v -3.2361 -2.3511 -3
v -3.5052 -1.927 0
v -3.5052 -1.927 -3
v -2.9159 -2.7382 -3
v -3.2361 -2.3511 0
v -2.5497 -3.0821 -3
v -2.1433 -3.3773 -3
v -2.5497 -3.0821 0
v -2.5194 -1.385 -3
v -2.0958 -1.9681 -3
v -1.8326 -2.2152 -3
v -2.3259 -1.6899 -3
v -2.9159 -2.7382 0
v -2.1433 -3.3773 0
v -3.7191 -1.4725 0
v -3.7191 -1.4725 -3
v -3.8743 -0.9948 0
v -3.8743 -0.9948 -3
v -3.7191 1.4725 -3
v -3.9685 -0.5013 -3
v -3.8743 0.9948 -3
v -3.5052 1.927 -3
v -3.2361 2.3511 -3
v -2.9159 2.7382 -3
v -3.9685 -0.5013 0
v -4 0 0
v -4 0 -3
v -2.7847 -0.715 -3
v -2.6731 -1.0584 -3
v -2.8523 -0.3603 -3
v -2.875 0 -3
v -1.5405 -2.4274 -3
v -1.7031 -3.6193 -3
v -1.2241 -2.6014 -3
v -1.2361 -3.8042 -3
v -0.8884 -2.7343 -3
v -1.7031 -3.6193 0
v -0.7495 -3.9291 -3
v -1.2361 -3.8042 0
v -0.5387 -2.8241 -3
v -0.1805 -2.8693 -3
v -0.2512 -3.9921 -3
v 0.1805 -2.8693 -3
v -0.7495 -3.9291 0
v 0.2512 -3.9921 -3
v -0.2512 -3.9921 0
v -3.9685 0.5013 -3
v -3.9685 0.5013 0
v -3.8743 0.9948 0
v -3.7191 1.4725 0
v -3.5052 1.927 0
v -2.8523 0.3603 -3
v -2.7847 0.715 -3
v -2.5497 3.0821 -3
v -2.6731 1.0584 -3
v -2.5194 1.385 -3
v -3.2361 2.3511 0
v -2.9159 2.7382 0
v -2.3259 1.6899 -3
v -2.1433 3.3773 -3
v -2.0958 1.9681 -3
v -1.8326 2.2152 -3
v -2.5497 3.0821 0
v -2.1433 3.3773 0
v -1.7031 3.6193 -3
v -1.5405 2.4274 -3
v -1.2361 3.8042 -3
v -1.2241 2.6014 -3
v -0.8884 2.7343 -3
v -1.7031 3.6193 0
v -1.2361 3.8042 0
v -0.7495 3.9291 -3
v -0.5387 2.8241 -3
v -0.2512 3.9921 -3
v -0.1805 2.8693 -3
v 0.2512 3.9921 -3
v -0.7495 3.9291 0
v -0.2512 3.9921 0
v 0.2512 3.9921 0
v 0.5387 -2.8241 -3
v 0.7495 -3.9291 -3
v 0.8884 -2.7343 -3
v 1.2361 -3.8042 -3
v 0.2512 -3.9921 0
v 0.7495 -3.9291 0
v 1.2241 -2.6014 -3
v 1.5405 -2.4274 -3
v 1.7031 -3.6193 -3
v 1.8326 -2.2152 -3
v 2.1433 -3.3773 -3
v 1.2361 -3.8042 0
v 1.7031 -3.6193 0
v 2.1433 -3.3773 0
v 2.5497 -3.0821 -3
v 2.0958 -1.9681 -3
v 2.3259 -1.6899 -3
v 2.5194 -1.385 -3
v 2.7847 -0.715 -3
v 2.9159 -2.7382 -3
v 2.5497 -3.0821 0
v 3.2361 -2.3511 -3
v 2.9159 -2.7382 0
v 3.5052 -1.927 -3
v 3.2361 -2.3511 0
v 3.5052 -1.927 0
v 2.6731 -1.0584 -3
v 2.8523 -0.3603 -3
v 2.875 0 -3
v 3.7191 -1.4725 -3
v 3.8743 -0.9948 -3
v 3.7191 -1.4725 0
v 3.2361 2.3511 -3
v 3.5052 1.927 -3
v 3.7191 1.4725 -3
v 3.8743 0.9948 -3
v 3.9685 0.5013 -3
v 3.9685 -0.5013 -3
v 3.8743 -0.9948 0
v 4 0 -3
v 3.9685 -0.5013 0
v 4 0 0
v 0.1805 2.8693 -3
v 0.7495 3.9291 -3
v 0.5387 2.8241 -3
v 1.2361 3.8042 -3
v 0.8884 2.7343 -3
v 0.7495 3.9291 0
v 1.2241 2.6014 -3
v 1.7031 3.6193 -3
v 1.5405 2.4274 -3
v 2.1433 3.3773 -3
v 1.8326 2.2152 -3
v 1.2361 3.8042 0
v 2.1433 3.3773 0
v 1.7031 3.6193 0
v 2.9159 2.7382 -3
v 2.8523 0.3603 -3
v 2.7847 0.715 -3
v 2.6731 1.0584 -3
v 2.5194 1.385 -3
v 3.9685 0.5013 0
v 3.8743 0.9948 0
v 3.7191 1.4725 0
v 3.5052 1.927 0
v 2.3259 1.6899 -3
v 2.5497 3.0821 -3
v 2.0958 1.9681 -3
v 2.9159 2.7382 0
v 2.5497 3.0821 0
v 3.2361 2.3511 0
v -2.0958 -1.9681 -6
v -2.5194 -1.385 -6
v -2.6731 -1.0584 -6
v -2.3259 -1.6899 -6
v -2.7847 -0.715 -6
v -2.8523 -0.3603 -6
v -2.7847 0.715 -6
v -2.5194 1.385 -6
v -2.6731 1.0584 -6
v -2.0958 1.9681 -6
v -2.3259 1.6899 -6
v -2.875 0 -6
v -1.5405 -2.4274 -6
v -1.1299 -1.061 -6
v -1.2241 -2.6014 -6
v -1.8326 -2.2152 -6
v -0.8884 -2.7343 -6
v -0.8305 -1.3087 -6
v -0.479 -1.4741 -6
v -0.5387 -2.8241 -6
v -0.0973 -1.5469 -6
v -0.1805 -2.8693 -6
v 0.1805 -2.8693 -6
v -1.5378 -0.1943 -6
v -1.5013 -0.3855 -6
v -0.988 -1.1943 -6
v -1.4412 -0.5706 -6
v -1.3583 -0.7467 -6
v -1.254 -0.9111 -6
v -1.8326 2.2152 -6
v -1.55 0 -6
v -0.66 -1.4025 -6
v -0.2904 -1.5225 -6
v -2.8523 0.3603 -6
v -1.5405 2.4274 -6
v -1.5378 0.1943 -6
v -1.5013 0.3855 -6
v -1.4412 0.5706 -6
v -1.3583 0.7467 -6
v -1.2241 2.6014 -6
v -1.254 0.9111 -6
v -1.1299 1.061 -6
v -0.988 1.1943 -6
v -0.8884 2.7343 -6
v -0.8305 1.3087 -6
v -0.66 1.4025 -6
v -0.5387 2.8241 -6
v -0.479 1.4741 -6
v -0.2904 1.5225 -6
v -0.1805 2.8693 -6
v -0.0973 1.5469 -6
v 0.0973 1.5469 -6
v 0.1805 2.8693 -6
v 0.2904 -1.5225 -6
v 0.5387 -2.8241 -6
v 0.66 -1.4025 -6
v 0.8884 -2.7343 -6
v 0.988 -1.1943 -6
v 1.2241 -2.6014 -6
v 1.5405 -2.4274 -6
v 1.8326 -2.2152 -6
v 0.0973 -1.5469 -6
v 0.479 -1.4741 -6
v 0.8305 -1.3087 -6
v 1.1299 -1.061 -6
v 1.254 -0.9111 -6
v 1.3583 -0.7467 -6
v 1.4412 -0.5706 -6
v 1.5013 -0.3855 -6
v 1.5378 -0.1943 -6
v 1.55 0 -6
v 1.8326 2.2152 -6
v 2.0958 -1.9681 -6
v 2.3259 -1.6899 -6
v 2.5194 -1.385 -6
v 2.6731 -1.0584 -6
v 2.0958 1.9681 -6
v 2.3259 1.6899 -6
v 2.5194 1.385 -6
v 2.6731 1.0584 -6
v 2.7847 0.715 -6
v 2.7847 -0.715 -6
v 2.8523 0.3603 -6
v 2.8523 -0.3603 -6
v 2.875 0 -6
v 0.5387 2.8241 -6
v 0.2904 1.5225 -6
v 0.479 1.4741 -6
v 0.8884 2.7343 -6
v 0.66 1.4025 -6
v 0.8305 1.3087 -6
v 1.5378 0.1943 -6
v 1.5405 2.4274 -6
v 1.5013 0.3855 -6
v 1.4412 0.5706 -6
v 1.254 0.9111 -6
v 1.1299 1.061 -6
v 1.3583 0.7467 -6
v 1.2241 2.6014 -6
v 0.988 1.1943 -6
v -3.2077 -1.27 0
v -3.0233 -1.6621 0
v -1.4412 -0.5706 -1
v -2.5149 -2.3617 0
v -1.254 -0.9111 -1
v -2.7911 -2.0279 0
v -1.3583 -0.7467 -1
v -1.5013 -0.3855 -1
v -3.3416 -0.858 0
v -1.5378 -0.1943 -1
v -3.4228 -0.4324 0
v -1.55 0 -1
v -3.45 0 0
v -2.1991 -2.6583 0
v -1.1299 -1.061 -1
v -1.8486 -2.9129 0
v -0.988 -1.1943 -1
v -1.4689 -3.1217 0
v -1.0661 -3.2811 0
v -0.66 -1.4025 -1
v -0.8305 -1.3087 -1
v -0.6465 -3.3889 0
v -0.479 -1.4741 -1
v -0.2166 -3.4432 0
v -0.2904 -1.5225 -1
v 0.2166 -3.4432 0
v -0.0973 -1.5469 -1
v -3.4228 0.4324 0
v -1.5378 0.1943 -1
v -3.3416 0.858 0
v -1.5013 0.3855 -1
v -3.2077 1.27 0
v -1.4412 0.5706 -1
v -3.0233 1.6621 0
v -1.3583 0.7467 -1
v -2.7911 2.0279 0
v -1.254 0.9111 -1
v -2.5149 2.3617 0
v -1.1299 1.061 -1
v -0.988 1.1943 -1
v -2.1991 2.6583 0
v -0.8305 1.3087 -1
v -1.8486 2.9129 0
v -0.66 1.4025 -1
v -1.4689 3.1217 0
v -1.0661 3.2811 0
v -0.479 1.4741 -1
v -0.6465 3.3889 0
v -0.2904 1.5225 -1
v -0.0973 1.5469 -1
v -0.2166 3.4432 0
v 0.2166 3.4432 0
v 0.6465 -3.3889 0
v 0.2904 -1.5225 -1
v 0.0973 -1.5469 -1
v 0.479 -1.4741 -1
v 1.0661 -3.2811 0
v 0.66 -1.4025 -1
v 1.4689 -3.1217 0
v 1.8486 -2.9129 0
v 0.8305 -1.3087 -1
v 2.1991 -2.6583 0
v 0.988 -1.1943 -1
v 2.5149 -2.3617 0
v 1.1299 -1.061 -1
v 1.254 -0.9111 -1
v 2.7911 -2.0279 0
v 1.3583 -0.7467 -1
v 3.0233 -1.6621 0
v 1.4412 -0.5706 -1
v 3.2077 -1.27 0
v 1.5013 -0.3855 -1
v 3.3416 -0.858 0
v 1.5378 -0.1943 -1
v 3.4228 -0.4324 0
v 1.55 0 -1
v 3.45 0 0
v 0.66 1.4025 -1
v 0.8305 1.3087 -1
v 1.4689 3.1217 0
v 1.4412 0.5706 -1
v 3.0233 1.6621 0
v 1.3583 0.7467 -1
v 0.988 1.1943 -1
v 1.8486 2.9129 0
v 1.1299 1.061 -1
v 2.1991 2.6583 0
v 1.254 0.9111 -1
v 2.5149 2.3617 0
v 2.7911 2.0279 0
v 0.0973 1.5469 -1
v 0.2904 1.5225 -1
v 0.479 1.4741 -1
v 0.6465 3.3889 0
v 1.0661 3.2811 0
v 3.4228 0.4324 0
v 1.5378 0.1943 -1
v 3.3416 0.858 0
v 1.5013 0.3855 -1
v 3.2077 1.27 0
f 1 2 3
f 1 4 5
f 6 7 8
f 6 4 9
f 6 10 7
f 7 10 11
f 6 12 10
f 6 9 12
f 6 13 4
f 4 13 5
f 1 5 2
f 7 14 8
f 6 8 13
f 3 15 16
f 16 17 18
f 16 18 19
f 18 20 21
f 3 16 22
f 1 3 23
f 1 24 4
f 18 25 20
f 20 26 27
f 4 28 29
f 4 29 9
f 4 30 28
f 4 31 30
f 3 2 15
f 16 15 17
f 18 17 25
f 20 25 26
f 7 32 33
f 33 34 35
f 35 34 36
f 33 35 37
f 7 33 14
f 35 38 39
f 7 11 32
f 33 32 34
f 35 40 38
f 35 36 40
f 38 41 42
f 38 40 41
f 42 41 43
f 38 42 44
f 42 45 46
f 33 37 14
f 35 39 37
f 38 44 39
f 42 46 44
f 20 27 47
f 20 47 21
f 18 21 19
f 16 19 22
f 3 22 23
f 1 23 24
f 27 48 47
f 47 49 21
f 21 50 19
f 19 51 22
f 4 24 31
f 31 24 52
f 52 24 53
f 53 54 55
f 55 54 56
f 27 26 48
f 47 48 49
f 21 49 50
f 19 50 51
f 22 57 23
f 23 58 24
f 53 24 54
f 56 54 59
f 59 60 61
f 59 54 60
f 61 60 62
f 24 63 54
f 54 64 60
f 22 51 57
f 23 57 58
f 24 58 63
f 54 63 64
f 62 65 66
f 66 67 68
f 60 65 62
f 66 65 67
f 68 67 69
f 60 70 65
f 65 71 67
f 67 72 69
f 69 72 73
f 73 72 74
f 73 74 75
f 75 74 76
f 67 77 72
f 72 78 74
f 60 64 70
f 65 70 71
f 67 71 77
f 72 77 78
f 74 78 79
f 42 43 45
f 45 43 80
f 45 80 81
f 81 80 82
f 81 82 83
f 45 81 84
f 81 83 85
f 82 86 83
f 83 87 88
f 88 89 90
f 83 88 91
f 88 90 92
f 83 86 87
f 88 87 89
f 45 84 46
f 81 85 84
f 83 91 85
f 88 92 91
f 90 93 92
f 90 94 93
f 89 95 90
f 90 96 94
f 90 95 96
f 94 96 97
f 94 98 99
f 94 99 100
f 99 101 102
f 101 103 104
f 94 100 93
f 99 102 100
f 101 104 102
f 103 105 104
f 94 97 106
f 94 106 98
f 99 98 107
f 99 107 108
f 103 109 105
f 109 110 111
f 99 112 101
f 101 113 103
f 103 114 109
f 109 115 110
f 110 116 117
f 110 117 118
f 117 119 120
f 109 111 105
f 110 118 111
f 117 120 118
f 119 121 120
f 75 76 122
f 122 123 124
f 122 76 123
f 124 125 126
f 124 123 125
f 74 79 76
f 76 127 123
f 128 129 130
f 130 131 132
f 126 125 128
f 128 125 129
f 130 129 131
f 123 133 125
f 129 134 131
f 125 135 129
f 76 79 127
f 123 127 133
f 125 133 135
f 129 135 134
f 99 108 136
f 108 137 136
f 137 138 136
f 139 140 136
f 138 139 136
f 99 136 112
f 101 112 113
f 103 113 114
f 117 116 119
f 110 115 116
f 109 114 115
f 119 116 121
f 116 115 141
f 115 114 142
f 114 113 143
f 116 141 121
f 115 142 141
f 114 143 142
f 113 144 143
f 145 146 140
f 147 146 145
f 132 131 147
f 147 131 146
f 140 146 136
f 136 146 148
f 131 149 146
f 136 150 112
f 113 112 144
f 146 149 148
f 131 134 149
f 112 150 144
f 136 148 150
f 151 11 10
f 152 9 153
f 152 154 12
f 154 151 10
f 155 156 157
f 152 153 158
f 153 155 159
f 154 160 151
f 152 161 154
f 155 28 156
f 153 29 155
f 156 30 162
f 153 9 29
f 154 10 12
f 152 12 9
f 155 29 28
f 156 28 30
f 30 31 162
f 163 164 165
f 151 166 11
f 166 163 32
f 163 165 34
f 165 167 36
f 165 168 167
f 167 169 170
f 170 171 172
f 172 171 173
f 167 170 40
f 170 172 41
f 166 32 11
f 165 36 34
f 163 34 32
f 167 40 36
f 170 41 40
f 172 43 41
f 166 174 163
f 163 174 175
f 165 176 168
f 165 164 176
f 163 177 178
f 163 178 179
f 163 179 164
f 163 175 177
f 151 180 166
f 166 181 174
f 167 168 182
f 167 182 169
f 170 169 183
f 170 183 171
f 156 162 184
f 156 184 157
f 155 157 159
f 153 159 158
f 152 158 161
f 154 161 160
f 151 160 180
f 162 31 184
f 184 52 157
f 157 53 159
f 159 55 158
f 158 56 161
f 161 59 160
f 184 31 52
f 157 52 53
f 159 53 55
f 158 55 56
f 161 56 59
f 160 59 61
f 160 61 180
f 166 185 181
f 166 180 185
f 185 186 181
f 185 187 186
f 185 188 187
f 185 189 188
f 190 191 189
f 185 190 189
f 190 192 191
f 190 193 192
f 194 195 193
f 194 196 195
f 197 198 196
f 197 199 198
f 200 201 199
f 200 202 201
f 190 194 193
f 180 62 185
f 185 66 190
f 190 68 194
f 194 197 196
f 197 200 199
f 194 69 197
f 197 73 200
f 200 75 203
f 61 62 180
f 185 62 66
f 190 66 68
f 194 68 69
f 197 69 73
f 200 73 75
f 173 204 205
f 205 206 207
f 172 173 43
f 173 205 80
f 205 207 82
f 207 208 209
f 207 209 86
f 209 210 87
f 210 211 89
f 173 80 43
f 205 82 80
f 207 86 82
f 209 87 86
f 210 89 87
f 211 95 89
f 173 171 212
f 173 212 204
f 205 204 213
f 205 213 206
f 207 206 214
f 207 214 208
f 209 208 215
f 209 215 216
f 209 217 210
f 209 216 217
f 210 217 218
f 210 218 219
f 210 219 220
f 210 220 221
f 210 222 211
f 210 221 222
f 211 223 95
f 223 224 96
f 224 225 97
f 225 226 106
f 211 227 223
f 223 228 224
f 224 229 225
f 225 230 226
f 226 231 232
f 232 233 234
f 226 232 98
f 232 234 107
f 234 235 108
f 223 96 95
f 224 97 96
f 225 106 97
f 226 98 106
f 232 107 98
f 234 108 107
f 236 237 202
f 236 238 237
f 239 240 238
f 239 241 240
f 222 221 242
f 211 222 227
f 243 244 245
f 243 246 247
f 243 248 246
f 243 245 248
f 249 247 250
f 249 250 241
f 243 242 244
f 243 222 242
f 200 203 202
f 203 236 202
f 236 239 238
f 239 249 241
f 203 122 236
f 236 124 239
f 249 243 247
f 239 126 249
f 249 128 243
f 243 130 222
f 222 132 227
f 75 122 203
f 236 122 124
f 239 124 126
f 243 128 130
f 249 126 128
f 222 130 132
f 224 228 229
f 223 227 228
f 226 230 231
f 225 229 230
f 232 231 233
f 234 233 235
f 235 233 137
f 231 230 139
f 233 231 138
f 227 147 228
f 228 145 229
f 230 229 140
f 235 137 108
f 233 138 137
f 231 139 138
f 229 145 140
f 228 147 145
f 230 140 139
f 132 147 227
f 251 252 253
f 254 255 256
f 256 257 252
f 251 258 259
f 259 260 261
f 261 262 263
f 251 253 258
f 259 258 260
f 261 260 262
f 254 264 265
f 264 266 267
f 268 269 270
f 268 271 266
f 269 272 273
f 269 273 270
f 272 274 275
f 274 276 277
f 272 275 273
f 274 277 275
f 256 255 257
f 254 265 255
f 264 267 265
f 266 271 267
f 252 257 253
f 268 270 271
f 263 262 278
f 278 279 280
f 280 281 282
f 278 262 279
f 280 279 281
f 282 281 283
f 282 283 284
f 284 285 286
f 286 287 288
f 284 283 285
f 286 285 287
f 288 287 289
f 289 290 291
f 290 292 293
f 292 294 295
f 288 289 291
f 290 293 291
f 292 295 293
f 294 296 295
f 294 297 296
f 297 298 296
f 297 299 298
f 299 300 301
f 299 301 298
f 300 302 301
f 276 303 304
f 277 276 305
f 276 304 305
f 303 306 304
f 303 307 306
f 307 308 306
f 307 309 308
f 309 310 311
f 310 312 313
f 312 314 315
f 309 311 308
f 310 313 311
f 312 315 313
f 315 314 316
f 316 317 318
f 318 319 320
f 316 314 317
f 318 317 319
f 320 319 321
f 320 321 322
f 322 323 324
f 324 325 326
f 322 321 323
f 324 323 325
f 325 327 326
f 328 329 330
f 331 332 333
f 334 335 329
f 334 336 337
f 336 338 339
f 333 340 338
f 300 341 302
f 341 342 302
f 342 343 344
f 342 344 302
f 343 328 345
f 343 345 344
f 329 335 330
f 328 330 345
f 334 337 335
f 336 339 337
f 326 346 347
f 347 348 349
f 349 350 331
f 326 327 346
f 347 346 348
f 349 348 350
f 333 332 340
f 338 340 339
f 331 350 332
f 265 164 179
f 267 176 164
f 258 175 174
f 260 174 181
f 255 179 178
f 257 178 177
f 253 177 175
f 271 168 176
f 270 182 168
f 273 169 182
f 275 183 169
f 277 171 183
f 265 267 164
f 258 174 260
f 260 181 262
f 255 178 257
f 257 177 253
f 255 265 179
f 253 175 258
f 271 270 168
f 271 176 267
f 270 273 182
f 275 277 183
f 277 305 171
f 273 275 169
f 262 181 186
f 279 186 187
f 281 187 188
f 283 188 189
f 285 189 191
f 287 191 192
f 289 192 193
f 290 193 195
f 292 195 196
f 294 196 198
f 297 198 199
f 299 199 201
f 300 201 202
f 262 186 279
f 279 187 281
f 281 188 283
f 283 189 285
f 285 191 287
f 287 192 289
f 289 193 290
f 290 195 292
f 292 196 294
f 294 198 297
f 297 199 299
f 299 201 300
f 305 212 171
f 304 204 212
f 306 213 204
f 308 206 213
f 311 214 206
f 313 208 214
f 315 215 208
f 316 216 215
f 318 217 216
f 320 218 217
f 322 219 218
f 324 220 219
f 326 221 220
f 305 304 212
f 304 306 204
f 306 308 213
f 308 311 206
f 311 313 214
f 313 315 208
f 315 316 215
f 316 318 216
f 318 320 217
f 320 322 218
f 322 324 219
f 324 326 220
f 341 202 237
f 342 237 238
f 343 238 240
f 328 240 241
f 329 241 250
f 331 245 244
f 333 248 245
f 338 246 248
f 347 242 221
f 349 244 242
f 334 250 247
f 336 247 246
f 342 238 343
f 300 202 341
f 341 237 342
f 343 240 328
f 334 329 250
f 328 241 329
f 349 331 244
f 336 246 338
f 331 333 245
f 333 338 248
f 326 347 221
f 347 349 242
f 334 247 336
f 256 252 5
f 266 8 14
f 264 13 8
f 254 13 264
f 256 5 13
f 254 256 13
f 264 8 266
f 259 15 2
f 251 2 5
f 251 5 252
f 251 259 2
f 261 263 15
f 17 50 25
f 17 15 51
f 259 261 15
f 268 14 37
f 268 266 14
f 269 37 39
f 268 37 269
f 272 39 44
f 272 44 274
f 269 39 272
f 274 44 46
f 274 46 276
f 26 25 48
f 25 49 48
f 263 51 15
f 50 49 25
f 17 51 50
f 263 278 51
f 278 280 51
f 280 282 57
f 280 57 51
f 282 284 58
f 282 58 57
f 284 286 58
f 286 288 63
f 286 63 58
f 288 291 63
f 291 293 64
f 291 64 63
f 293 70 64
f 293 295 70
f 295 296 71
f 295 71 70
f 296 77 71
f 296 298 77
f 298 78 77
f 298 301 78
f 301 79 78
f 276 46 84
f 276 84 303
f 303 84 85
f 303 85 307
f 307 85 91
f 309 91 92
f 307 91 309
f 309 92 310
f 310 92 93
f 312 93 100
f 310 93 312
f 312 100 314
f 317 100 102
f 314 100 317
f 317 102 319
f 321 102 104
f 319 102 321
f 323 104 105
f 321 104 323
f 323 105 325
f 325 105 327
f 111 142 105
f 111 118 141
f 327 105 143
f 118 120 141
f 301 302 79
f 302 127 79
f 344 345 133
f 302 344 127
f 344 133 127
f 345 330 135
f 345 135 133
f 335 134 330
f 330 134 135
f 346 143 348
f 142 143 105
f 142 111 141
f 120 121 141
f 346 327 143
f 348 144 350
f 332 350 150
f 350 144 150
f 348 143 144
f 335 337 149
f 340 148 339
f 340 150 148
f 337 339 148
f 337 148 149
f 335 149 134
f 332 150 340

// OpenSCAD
$fn = 50;

difference() {
	union() {
		translate(v = [0, 0, -3.0]) {
			cylinder(h = 6, r = 4.0);
		}
		#translate(v = [0, 0, -6.0]) {
			cylinder(h = 6, r = 2.875);
		}
	}
	union() {
		translate(v = [0, 0, 0]) {
			rotate(a = [0, 0, 0]) {
				difference() {
					union() {
						translate(v = [0, 0, -6.0]) {
							cylinder(h = 6, r = 1.25);
						}
						translate(v = [0, 0, -1.0]) {
							cylinder(h = 1.0, r1 = 1.55, r2 = 3.45);
						}
						translate(v = [0, 0, -6.0]) {
							cylinder(h = 6, r = 1.55);
						}
						translate(v = [0, 0, -6.0]) {
							cylinder(h = 6, r = 1.25);
						}
					}
					union();
				}
			}
		}
		#cylinder(h = 3, r = 5.0);
	}
}
